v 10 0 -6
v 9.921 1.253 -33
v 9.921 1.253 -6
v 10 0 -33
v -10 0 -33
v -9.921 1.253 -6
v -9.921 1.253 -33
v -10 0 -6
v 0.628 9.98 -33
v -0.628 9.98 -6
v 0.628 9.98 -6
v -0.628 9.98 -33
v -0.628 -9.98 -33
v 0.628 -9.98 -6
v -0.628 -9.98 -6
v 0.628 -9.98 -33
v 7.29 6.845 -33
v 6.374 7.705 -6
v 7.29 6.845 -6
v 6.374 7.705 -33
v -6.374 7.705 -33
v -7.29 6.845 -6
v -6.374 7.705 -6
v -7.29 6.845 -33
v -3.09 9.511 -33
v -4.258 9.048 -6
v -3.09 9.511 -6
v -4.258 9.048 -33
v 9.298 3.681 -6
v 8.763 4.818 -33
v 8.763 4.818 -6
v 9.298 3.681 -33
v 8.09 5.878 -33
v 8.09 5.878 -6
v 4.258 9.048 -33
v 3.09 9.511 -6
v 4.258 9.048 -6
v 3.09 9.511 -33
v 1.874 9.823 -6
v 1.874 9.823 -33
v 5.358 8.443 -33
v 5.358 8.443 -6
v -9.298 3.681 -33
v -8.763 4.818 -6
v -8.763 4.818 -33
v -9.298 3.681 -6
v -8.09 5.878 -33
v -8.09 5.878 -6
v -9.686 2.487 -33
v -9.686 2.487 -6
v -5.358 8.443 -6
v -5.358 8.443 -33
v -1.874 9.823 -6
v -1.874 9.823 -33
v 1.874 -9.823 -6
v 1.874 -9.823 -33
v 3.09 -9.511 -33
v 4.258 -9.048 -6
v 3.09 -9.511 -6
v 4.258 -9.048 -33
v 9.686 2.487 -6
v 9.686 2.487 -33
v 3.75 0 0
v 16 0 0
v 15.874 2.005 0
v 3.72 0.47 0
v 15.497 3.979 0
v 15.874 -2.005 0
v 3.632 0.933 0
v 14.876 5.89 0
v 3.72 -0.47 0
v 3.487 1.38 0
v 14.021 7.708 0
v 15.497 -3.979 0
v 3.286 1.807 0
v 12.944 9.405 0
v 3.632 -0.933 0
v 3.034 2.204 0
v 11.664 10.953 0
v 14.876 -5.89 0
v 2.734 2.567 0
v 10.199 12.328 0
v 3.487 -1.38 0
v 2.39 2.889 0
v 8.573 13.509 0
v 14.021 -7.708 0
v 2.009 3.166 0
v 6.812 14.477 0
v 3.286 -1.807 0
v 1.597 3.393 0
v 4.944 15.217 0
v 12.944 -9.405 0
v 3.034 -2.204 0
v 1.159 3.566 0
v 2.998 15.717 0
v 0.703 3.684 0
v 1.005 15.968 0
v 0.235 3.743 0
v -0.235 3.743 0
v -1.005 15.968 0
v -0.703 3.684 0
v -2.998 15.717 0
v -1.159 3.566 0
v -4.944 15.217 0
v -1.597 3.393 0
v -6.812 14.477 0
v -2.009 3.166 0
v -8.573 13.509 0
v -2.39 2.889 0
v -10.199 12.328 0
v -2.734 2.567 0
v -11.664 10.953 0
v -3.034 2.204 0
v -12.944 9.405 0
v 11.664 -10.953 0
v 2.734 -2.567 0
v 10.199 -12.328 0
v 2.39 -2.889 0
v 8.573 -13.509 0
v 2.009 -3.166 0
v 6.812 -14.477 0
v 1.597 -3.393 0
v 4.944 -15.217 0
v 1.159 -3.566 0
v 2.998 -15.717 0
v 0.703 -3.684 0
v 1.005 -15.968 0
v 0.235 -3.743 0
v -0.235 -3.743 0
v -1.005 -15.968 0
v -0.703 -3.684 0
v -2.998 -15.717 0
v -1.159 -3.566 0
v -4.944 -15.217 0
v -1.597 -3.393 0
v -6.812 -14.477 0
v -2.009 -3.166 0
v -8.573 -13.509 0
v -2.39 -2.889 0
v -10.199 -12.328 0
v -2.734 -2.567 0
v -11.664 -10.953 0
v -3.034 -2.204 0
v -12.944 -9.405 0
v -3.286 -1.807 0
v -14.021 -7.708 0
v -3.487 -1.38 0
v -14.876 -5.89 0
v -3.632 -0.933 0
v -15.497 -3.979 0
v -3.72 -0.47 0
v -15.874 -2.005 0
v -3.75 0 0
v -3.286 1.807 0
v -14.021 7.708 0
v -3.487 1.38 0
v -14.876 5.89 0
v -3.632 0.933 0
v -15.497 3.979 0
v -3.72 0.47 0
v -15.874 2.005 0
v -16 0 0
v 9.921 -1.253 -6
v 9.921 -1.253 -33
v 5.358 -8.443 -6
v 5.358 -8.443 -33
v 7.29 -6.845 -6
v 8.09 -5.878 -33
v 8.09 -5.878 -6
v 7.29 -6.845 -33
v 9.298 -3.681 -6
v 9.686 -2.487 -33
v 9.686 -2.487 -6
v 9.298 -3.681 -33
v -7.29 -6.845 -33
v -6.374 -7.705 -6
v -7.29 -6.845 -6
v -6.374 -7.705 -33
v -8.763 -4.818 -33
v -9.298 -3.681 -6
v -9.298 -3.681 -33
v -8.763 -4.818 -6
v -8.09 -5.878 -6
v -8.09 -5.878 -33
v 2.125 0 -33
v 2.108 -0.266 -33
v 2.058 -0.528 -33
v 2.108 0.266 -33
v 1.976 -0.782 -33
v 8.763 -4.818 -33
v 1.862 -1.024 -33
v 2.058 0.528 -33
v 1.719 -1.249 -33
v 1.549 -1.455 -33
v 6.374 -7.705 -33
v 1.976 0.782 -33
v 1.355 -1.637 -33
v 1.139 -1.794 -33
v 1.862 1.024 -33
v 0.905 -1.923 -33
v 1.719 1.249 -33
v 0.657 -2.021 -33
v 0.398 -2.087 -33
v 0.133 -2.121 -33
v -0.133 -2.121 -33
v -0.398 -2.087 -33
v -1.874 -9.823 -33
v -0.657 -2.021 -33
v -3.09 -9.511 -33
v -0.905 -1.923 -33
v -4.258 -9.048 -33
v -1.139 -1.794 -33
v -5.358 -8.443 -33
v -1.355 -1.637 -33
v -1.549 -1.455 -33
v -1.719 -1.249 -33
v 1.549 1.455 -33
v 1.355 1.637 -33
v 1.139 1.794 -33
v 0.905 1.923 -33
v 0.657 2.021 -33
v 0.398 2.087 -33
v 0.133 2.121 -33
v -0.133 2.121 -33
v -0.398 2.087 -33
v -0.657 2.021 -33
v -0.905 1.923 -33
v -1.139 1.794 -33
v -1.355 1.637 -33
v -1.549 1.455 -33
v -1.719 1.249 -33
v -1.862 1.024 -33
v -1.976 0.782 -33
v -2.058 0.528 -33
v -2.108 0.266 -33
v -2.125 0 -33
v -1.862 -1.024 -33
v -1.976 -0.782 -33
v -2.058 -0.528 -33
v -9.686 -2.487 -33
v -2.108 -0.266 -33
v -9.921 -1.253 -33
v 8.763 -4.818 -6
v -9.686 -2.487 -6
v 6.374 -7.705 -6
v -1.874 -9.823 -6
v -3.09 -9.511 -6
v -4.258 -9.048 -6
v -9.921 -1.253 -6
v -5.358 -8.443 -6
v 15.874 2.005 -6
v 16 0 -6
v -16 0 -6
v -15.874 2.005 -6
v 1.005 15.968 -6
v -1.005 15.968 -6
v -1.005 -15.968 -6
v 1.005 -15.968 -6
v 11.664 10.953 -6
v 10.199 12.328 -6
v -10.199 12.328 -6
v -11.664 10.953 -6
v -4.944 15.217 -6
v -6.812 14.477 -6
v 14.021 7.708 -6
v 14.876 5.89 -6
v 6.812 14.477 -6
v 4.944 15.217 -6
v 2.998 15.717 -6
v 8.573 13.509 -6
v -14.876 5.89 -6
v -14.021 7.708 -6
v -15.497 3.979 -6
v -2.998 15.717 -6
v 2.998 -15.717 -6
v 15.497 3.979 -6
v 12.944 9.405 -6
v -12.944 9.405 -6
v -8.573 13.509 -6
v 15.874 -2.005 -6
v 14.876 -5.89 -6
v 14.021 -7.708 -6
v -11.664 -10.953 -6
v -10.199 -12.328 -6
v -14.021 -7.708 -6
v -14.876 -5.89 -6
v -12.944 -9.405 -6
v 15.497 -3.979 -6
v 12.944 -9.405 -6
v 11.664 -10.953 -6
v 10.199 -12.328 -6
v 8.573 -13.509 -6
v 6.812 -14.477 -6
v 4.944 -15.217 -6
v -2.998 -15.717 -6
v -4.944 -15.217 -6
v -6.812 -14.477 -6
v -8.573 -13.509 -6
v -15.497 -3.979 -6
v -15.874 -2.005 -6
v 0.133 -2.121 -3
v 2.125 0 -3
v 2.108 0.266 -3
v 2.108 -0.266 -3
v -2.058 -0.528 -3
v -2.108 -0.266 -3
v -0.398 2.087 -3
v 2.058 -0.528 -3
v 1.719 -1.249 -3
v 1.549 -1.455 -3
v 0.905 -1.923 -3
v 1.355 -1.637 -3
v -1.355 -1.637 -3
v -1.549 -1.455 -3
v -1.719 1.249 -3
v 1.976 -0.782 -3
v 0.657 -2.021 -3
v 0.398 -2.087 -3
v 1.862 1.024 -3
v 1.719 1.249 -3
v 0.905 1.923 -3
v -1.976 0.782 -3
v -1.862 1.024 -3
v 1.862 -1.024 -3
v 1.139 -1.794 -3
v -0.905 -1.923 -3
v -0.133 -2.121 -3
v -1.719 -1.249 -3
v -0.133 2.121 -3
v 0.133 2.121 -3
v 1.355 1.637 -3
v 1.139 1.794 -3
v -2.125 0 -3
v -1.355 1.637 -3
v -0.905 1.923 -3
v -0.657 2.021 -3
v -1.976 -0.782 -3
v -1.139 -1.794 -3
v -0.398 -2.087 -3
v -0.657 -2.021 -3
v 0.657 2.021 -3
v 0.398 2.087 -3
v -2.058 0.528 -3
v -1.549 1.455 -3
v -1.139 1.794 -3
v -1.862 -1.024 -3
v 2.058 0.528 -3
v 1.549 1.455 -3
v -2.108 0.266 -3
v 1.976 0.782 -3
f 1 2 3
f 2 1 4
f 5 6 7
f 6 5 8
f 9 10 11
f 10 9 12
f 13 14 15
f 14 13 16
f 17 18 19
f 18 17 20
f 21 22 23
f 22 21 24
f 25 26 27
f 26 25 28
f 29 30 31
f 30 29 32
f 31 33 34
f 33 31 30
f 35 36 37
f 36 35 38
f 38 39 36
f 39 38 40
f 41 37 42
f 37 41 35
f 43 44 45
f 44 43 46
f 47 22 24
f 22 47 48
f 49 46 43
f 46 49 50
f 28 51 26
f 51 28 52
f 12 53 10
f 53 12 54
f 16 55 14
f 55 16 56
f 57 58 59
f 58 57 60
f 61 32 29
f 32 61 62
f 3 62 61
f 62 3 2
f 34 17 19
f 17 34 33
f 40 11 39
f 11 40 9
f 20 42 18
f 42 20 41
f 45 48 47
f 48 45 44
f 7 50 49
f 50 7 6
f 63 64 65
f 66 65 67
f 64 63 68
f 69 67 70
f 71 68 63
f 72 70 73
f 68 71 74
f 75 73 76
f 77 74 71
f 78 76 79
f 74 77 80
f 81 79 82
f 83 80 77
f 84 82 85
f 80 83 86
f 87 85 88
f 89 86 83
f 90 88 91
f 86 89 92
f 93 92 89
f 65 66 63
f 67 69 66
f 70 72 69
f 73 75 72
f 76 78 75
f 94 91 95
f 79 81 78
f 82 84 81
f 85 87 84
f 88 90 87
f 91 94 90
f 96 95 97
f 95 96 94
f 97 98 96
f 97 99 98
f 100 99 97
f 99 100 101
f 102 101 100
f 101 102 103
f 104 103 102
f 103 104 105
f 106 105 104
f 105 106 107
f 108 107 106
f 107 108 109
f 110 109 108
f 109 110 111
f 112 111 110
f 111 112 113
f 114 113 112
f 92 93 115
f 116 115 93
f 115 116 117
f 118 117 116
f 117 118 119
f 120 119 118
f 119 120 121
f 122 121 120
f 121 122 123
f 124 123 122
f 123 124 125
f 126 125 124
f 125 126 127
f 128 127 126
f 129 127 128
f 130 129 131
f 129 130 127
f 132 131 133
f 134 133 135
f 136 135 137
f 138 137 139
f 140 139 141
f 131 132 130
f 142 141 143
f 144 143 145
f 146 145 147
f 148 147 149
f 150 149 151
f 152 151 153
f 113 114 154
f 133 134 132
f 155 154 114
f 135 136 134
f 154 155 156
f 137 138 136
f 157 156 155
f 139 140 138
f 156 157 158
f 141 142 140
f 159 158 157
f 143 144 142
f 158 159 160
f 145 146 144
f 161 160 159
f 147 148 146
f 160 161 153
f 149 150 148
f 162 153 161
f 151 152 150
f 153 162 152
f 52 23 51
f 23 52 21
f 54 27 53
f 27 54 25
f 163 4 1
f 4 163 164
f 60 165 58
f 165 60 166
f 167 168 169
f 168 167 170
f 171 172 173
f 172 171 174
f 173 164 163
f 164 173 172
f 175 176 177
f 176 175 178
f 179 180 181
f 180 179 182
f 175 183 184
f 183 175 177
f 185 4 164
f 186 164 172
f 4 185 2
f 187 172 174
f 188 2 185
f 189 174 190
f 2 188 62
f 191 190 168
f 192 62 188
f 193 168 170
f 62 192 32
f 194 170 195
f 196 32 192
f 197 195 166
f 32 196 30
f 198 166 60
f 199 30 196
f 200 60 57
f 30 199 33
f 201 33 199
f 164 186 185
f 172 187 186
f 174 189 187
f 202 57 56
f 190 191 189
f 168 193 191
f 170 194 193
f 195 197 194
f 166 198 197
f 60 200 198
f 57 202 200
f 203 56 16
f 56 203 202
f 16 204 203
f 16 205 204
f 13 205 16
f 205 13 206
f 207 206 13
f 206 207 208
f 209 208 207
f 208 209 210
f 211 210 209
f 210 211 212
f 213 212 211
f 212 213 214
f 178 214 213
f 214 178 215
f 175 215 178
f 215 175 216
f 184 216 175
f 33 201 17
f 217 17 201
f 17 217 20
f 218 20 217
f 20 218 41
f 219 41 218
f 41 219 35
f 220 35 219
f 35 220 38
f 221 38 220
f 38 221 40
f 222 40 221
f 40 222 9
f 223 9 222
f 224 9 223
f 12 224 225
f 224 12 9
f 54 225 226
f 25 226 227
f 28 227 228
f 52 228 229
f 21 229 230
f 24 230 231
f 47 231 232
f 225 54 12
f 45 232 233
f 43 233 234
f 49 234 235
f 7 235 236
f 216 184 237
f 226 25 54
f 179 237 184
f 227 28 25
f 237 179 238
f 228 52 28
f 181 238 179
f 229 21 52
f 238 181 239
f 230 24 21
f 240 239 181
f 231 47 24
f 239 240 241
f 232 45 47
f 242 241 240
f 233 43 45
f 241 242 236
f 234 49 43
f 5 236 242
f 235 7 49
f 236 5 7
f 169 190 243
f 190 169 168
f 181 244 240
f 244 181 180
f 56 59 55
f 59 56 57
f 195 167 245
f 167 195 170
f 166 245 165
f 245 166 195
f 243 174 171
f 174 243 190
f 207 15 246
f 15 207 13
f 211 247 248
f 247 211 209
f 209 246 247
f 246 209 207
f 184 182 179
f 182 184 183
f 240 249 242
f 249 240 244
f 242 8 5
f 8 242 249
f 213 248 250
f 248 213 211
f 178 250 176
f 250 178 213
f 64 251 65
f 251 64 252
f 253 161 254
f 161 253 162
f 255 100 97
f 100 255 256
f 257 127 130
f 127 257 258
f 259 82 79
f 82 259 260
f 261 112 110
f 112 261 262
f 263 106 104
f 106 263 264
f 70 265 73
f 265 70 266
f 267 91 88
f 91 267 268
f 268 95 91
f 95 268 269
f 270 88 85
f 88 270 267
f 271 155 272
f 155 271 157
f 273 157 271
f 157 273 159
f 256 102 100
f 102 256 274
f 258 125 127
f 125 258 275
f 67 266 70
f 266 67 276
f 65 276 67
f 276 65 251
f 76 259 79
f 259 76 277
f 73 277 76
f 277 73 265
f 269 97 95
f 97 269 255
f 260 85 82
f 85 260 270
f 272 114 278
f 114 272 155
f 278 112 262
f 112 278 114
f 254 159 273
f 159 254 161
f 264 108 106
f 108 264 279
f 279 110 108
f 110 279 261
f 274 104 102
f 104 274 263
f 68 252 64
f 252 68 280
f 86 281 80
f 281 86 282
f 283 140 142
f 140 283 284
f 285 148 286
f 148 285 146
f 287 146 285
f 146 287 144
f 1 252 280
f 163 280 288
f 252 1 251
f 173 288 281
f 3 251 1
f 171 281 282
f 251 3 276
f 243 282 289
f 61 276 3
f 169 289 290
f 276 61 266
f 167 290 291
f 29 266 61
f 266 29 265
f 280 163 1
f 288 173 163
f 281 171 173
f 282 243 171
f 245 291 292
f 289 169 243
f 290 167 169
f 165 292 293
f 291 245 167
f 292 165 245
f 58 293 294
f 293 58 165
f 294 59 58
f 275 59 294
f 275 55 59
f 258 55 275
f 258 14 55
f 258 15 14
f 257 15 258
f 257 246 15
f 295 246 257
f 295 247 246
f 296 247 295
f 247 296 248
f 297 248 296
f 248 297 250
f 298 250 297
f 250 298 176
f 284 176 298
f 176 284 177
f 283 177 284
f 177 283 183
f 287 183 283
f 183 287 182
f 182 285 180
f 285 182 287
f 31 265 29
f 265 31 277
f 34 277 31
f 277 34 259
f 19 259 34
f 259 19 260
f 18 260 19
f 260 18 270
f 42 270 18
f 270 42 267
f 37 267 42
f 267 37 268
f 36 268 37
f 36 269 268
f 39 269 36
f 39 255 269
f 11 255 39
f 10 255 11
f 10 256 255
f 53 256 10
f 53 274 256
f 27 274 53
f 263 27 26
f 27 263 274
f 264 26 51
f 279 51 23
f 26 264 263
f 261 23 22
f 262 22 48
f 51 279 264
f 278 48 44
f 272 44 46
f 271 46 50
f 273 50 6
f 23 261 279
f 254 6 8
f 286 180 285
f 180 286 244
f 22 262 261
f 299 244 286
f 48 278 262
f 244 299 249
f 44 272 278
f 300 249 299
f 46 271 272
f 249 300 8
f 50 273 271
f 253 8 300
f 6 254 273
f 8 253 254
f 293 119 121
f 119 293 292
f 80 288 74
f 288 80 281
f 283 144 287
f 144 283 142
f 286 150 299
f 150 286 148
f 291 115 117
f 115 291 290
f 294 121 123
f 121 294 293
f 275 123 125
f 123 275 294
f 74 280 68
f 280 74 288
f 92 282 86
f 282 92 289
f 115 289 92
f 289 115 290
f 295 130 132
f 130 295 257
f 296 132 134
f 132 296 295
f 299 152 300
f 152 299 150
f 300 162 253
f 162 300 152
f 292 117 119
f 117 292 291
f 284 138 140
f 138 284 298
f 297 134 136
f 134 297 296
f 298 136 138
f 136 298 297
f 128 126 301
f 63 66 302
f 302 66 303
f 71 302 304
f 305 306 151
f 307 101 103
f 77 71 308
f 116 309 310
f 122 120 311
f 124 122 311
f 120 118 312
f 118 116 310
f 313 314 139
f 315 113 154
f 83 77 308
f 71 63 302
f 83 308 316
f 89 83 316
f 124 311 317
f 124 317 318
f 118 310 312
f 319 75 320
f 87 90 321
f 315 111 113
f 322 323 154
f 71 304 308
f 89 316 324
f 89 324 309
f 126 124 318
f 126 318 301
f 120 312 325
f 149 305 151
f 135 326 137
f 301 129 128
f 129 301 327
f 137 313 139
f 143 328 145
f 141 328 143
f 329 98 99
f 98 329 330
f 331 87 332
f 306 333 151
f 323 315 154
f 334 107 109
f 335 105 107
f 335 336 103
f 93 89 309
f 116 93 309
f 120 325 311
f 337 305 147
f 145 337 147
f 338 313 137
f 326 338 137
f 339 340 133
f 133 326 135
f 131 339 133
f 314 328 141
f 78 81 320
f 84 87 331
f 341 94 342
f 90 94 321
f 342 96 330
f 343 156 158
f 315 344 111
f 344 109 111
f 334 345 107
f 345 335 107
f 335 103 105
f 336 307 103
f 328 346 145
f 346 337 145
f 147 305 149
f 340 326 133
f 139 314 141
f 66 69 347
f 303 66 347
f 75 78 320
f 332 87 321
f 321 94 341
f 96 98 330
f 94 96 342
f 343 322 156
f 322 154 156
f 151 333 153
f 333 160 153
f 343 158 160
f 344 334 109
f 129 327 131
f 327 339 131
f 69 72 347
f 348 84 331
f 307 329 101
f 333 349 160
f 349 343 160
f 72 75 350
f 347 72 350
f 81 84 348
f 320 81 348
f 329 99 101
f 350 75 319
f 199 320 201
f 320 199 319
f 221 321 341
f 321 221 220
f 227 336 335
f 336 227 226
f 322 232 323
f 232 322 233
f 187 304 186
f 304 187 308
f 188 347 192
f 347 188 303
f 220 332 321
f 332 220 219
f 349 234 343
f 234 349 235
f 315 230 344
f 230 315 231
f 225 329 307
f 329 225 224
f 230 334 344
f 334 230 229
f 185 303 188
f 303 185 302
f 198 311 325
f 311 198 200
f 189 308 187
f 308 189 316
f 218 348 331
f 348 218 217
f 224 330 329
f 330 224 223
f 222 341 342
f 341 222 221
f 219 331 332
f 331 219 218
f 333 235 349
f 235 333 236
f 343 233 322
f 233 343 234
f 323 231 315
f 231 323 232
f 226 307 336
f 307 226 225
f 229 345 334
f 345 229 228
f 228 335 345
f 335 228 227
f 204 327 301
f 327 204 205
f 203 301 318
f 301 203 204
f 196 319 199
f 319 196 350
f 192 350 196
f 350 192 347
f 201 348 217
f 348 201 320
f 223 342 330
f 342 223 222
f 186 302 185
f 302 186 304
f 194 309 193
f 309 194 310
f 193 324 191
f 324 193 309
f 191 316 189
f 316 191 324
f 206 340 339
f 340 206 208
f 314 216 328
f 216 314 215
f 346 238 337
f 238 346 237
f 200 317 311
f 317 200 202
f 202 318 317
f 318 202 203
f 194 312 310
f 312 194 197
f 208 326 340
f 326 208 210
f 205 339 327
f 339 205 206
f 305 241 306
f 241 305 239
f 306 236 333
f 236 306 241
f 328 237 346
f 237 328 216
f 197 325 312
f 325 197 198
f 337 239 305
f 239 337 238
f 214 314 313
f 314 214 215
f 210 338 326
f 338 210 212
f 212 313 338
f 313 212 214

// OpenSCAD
$fn = 50;


difference() {
	union() {
		translate(v = [0, 0, -33.0000000000]) {
			cylinder(h = 33, r = 10.0000000000);
		}
		translate(v = [0, 0, -6.0000000000]) {
			cylinder(h = 6, r = 16.0000000000);
		}
	}
	union() {
		translate(v = [0, 0, 0]) {
			rotate(a = [0, 0, 0]) {
				difference() {
					union() {
						#translate(v = [0, 0, -33.0000000000]) {
							cylinder(h = 33, r = 2.0000000000);
						}
						#translate(v = [0, 0, -3]) {
							cylinder(h = 3, r1 = 2.1250000000, r2 = 3.7500000000);
						}
						#translate(v = [0, 0, -33.0000000000]) {
							cylinder(h = 33, r = 2.1250000000);
						}
						#translate(v = [0, 0, -33.0000000000]) {
							cylinder(h = 33, r = 2.0000000000);
						}
					}
					union();
				}
			}
		}
	}
}
